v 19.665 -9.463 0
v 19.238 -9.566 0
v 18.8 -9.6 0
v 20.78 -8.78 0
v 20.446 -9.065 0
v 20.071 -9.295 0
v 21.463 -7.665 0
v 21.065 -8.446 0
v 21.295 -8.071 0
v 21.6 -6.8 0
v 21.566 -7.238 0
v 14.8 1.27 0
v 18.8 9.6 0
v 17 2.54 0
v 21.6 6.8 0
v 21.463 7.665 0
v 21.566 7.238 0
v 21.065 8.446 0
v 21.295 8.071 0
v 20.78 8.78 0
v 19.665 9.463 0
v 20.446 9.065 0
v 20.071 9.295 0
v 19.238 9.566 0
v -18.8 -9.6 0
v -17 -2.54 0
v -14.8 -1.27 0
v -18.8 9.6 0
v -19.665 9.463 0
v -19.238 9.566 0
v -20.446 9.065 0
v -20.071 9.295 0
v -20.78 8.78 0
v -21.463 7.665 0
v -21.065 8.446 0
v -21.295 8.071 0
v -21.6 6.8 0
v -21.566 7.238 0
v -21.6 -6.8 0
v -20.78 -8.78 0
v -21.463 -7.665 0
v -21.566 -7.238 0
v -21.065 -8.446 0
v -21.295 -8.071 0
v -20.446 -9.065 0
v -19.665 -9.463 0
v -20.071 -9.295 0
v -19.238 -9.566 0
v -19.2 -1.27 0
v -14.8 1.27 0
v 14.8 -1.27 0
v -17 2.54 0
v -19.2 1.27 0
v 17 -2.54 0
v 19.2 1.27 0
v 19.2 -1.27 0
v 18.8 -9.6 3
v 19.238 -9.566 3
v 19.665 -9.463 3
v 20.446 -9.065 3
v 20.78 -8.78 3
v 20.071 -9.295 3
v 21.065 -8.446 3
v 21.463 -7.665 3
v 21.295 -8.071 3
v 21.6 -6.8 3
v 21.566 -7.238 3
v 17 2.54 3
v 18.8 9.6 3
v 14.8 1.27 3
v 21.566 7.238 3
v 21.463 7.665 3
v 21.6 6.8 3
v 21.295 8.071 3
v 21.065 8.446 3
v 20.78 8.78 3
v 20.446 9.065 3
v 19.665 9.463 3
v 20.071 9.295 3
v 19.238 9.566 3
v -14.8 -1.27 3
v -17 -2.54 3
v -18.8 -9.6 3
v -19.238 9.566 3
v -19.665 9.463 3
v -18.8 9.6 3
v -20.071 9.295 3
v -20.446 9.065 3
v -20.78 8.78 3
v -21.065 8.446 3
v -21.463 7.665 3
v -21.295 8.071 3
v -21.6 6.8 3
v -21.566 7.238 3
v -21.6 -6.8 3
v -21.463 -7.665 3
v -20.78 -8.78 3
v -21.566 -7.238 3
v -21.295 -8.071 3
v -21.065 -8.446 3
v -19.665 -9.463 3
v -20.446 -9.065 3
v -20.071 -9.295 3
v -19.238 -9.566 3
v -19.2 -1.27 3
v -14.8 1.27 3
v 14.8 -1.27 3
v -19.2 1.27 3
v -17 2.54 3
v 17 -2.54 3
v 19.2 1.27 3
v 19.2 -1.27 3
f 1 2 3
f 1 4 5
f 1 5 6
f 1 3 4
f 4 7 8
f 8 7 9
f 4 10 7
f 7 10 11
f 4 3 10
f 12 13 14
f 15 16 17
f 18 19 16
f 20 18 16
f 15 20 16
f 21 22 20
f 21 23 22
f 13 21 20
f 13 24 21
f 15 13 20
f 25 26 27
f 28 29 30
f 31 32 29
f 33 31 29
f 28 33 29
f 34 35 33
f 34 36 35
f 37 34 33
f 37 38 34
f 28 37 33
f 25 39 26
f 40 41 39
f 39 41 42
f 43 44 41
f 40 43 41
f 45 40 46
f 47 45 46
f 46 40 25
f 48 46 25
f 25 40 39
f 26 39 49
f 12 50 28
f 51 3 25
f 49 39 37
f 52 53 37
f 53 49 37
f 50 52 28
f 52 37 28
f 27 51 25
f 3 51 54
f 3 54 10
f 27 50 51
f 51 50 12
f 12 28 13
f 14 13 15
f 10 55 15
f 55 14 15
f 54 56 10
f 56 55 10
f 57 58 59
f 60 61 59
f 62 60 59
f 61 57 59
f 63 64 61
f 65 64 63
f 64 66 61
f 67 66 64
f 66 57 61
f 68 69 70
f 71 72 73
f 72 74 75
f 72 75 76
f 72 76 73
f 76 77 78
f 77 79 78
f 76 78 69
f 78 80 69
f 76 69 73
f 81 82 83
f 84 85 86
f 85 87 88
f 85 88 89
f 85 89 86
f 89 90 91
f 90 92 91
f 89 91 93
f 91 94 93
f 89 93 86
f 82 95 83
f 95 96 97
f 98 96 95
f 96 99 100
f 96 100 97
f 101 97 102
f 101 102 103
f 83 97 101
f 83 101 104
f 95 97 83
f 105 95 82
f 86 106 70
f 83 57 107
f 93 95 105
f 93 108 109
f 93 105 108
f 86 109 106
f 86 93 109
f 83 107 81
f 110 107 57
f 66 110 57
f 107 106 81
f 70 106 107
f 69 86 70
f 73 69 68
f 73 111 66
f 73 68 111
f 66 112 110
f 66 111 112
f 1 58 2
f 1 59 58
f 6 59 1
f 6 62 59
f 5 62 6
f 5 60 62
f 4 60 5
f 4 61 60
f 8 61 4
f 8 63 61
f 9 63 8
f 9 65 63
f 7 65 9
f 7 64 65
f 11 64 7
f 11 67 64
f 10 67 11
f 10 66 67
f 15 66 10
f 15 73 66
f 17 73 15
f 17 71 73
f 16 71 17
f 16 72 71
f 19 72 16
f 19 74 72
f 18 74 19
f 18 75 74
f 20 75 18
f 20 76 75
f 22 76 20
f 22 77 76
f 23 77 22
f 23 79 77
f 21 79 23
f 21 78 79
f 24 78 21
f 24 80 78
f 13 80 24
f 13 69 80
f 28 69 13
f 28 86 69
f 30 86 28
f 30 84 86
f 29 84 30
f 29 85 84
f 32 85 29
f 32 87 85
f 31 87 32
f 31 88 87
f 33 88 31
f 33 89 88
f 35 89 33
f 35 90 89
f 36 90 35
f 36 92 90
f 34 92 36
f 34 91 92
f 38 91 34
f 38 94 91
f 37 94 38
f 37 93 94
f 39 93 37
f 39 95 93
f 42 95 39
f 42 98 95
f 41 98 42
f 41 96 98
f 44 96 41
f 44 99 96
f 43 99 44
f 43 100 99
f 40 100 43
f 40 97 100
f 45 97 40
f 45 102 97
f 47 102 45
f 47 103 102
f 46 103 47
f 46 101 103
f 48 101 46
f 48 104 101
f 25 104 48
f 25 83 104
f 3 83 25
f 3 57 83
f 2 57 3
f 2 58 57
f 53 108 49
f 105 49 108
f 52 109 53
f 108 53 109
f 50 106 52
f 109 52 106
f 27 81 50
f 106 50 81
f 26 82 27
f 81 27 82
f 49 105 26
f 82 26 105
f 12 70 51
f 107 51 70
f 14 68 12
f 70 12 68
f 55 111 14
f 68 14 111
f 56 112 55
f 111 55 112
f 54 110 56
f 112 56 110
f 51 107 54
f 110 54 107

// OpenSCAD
// file: params.scad
// ==========================================
// ConnectedDoll2 Shell Parameters (params.scad)
// ==========================================

$fn = 40; // 円・フィレットの分割精度

// --- 基本ケース外形 ---
wall_thickness = 2.0;         // ケース肉厚
corner_radius  = 4.0;         // 外装の角丸半径
clearance      = 0.4;         // 嵌合・可動クリアランス

// --- メイン基板 (PCB) ---
pcb_width      = 60.0;
pcb_height     = 60.0;
pcb_thickness  = 1.6;
pcb_hole_pitch = 52.0;        // 取付穴ピッチ (四隅 52x52mm)
pcb_hole_dia   = 2.0;         // M2 穴

// --- スピーカー (TR-WS-2014B) ---
spk_width      = 20.0;
spk_height     = 14.0;
spk_thickness  = 4.5;
spk_hole_pitch = 24.7;        // フランジ取付穴ピッチ
spk_hole_dia   = 1.8;         // M1.8 穴
spk_boss_dia   = 4.2;
spk_boss_inner = 1.4;         // M1.8 タッピング穴径
spk_boss_h     = 4.0;

// --- 前面ボタン（ボトムケース手前側面に配置） ---
btn_side_width        = 44.0;       // 側面ボタン開口幅
btn_side_height       = 20.0;       // 側面ボタン開口高さ
btn_side_radius       = 3.0;        // 側面ボタン角丸

btn_cap_depth         = 2.5;        // ボタンキャップ厚み（ズレ・傾き防止ガイド長）
btn_flange_t          = 1.2;        // 脱落防止フランジ厚み
btn_magnet_d          = 6.0;        // ネオジム磁石直径 (φ6.0mm)
btn_magnet_t          = 3.0;        // ネオジム磁石厚み (3.0mm)
btn_magnet_pitch_w    = 34.0;       // 左右磁石・ナット位置ピッチ (2個配置)
btn_magnet_pocket_d   = 6.1;        // ボタン側磁石埋め込みポケット径 (φ6.1mm)
btn_magnet_pocket_depth = 3.0;      // ボタン側磁石埋め込みポケット深さ (3.0mm)

// --- 前面化粧パネル（アクリル等）および M2 六角ナット仕様 ---
panel_nut_width       = 4.4;        // パネル側 M2 六角ナット二面幅 (対辺 4.0mm + 余裕0.4mm)
panel_nut_depth       = 1.6;        // パネル側 M2 六角ナット厚み / ポケット深さ (1.6mm)

// --- 前面ボタン バネ機構（弾性ストローク＆復帰スプリング） ---
btn_spring_arm_t        = 1.0;        // 左右復帰板バネアーム肉厚 (0.9〜1.0mm)
btn_spring_arm_l        = 9.5;        // 復帰板バネアーム展開長
btn_spring_reach        = 2.8;        // 復帰板バネ前方（ケース内壁当接）突き出し量
btn_flex_plunger_t      = 0.9;        // 弾性プランジャー板バネ肉厚
btn_target_stroke       = 1.2;        // 目標ストローク量 (1.2mm)
btn_plunger_w           = 3.5;        // プランジャー幅 (スリム形状)
btn_plunger_l           = 0.8;        // プランジャー裏面突出長 (0.8mm: 実基板内側スイッチ位置に対応)
btn_plunger_offset_y    = 1.4;        // スイッチアクチュエータ中心Yオフセット (+1.4mm)

// --- 前面アクリル化粧パネル埋め込み用リセス（段差ポケット） ---
front_recess_depth    = btn_magnet_t; // 3.0mm (アクリル厚みに完全一致)
front_recess_margin   = 0.6;          // リセスクリアランス (周囲0.6mm)
front_recess_w        = btn_side_width + front_recess_margin * 2;   // 45.2mm
front_recess_h        = btn_side_height + front_recess_margin * 2;  // 21.2mm
front_recess_r        = btn_side_radius + front_recess_margin;      // 3.6mm

// --- ボリューム調整スリット（右側面に配置） ---
vol_slit_width  = 16.0;       // ダイヤル操作スリット幅
vol_slit_height = 4.5;        // スリット高さ
vol_slit_radius = 1.5;        // スリット角丸
vol_offset_y    = -5.0;       // Y軸方向オフセット（前方向へ5mm移動）

// --- 電池ボックス (単4×3本 スイッチ付き) ---
batt_length    = 63.0;        // 横幅
batt_width     = 37.0;        // 縦幅
batt_height    = 17.0;        // 厚み
batt_clearance = 0.6;         // 電池ボックス収容クリアランス
batt_pos_y     = 3.0;         // 電池ボックス中心Yオフセット（奥側M2支柱および手前スピーカーとの干渉回避位置）
spk_pos_y      = -23.5;       // スピーカー中心Yオフセット

// --- ケース寸法計算 ---
case_inner_w   = pcb_width + clearance * 2 + 4.0; // 内部余裕 (約 64.8mm)
case_inner_h   = pcb_height + clearance * 2 + 4.0; // 内部余裕 (約 64.8mm)

top_cover_h    = 8.0;         // トップカバー高さ（薄型フタ・天板）
bottom_case_h  = 28.0;        // ボトムケース高さ（20mmスペーサー + 基板 + スイッチ開口を収容、28mm）

case_outer_w   = case_inner_w + wall_thickness * 2; // 外幅 (約 68.8mm)
case_outer_h   = case_inner_h + wall_thickness * 2; // 外高 (約 68.8mm)

// --- M2 六角オスメスネジスペーサー仕様 ---
spacer_body_h      = 20.0;           // スペーサー本体（六角部）長さ = 20.0mm
spacer_male_h      = 6.0;            // 先端おねじ部長さ = 6.0mm
spacer_hex_w       = 4.4;            // ボトム側回り止め六角ポケット二面幅 (対辺 4.0mm + 余裕0.4mm)
spacer_pocket_d    = 1.0;            // 回り止め六角ポケット深さ
spacer_pad_h       = 1.2;            // ボトム底面のスペーサー受け座パッド高さ
pcb_standoff_h     = spacer_body_h;  // 基板受け面高さ = 20.0mm

// ボタンおよびアクリルパネルの統一中心高さ (PCB表面・タクトスイッチ中心高さ: Z = 23.0mm)
btn_center_z       = wall_thickness + pcb_standoff_h + 1.0;

// --- 統合締結ボス・ネジ穴寸法 ---
joint_pitch        = pcb_hole_pitch; // 52.0mm
joint_boss_outer   = 6.0;            // トップ側ボス外径
joint_screw_pass   = 2.2;            // M2 ネジ通過穴径（ボトム底面）
joint_screw_tap    = 1.8;            // M2 おねじ受けタッピング穴径（トップ側）
joint_screw_head_d = 4.4;            // M2 ネジ頭沈め径
joint_screw_head_h = 1.8;            // ネジ頭沈め深さ
rib_thickness      = 1.2;            // 補強リブ厚み

// --- 共通ユーティリティモジュール ---
module rounded_cube(size, r) {
    x = size[0];
    y = size[1];
    z = size[2];
    hull() {
        translate([r, r, 0]) cylinder(h=z, r=r);
        translate([x - r, r, 0]) cylinder(h=z, r=r);
        translate([x - r, y - r, 0]) cylinder(h=z, r=r);
        translate([r, y - r, 0]) cylinder(h=z, r=r);
    }
}
// main file
// ==========================================
// ConnectedDoll2 Acrylic Panel (acrylic_panel.scad)
// ==========================================

include <params.scad>;

// 描画モード: "3d" または "2d" (DXF/SVG出力時はコマンドラインから -D mode=\"2d\" で指定)
mode = "3d";

// アクリルパネル寸法
panel_w      = btn_side_width - clearance * 2;   // 43.2mm
panel_h      = btn_side_height - clearance * 2;  // 13.2mm
panel_r      = btn_side_radius - clearance / 2;  // 角丸 R=2.8mm
panel_t      = btn_magnet_t;                     // 3.0mm (アクリル厚み)

nut_radius   = (panel_nut_width / 2) / cos(30);  // M2 六角ナット外接円半径 ($fn=6 で二面幅 4.4mm)

// 2D 外形プロファイル (DXF / SVG レーザー加工用)
module acrylic_panel_2d() {
    difference() {
        // 外形プレート (角丸長方形)
        hull() {
            translate([-panel_w/2 + panel_r, -panel_h/2 + panel_r]) circle(r=panel_r);
            translate([panel_w/2 - panel_r, -panel_h/2 + panel_r])  circle(r=panel_r);
            translate([panel_w/2 - panel_r, panel_h/2 - panel_r])   circle(r=panel_r);
            translate([-panel_w/2 + panel_r, panel_h/2 - panel_r])  circle(r=panel_r);
        }

        // 左右 2 箇所の M2 六角ナット埋め込み穴（高さ中央: 二面幅 4.4mm）
        for (dx = [-btn_magnet_pitch_w/2, btn_magnet_pitch_w/2]) {
            translate([dx, 0])
                rotate([0, 0, 30])
                    circle(r=nut_radius, $fn=6);
        }
    }
}

// 3D モデル (STL / プレビュー用)
module acrylic_panel_3d() {
    linear_extrude(height=panel_t)
        acrylic_panel_2d();
}

// モードに応じた描画
if (mode == "2d") {
    acrylic_panel_2d();
} else {
    acrylic_panel_3d();
}
